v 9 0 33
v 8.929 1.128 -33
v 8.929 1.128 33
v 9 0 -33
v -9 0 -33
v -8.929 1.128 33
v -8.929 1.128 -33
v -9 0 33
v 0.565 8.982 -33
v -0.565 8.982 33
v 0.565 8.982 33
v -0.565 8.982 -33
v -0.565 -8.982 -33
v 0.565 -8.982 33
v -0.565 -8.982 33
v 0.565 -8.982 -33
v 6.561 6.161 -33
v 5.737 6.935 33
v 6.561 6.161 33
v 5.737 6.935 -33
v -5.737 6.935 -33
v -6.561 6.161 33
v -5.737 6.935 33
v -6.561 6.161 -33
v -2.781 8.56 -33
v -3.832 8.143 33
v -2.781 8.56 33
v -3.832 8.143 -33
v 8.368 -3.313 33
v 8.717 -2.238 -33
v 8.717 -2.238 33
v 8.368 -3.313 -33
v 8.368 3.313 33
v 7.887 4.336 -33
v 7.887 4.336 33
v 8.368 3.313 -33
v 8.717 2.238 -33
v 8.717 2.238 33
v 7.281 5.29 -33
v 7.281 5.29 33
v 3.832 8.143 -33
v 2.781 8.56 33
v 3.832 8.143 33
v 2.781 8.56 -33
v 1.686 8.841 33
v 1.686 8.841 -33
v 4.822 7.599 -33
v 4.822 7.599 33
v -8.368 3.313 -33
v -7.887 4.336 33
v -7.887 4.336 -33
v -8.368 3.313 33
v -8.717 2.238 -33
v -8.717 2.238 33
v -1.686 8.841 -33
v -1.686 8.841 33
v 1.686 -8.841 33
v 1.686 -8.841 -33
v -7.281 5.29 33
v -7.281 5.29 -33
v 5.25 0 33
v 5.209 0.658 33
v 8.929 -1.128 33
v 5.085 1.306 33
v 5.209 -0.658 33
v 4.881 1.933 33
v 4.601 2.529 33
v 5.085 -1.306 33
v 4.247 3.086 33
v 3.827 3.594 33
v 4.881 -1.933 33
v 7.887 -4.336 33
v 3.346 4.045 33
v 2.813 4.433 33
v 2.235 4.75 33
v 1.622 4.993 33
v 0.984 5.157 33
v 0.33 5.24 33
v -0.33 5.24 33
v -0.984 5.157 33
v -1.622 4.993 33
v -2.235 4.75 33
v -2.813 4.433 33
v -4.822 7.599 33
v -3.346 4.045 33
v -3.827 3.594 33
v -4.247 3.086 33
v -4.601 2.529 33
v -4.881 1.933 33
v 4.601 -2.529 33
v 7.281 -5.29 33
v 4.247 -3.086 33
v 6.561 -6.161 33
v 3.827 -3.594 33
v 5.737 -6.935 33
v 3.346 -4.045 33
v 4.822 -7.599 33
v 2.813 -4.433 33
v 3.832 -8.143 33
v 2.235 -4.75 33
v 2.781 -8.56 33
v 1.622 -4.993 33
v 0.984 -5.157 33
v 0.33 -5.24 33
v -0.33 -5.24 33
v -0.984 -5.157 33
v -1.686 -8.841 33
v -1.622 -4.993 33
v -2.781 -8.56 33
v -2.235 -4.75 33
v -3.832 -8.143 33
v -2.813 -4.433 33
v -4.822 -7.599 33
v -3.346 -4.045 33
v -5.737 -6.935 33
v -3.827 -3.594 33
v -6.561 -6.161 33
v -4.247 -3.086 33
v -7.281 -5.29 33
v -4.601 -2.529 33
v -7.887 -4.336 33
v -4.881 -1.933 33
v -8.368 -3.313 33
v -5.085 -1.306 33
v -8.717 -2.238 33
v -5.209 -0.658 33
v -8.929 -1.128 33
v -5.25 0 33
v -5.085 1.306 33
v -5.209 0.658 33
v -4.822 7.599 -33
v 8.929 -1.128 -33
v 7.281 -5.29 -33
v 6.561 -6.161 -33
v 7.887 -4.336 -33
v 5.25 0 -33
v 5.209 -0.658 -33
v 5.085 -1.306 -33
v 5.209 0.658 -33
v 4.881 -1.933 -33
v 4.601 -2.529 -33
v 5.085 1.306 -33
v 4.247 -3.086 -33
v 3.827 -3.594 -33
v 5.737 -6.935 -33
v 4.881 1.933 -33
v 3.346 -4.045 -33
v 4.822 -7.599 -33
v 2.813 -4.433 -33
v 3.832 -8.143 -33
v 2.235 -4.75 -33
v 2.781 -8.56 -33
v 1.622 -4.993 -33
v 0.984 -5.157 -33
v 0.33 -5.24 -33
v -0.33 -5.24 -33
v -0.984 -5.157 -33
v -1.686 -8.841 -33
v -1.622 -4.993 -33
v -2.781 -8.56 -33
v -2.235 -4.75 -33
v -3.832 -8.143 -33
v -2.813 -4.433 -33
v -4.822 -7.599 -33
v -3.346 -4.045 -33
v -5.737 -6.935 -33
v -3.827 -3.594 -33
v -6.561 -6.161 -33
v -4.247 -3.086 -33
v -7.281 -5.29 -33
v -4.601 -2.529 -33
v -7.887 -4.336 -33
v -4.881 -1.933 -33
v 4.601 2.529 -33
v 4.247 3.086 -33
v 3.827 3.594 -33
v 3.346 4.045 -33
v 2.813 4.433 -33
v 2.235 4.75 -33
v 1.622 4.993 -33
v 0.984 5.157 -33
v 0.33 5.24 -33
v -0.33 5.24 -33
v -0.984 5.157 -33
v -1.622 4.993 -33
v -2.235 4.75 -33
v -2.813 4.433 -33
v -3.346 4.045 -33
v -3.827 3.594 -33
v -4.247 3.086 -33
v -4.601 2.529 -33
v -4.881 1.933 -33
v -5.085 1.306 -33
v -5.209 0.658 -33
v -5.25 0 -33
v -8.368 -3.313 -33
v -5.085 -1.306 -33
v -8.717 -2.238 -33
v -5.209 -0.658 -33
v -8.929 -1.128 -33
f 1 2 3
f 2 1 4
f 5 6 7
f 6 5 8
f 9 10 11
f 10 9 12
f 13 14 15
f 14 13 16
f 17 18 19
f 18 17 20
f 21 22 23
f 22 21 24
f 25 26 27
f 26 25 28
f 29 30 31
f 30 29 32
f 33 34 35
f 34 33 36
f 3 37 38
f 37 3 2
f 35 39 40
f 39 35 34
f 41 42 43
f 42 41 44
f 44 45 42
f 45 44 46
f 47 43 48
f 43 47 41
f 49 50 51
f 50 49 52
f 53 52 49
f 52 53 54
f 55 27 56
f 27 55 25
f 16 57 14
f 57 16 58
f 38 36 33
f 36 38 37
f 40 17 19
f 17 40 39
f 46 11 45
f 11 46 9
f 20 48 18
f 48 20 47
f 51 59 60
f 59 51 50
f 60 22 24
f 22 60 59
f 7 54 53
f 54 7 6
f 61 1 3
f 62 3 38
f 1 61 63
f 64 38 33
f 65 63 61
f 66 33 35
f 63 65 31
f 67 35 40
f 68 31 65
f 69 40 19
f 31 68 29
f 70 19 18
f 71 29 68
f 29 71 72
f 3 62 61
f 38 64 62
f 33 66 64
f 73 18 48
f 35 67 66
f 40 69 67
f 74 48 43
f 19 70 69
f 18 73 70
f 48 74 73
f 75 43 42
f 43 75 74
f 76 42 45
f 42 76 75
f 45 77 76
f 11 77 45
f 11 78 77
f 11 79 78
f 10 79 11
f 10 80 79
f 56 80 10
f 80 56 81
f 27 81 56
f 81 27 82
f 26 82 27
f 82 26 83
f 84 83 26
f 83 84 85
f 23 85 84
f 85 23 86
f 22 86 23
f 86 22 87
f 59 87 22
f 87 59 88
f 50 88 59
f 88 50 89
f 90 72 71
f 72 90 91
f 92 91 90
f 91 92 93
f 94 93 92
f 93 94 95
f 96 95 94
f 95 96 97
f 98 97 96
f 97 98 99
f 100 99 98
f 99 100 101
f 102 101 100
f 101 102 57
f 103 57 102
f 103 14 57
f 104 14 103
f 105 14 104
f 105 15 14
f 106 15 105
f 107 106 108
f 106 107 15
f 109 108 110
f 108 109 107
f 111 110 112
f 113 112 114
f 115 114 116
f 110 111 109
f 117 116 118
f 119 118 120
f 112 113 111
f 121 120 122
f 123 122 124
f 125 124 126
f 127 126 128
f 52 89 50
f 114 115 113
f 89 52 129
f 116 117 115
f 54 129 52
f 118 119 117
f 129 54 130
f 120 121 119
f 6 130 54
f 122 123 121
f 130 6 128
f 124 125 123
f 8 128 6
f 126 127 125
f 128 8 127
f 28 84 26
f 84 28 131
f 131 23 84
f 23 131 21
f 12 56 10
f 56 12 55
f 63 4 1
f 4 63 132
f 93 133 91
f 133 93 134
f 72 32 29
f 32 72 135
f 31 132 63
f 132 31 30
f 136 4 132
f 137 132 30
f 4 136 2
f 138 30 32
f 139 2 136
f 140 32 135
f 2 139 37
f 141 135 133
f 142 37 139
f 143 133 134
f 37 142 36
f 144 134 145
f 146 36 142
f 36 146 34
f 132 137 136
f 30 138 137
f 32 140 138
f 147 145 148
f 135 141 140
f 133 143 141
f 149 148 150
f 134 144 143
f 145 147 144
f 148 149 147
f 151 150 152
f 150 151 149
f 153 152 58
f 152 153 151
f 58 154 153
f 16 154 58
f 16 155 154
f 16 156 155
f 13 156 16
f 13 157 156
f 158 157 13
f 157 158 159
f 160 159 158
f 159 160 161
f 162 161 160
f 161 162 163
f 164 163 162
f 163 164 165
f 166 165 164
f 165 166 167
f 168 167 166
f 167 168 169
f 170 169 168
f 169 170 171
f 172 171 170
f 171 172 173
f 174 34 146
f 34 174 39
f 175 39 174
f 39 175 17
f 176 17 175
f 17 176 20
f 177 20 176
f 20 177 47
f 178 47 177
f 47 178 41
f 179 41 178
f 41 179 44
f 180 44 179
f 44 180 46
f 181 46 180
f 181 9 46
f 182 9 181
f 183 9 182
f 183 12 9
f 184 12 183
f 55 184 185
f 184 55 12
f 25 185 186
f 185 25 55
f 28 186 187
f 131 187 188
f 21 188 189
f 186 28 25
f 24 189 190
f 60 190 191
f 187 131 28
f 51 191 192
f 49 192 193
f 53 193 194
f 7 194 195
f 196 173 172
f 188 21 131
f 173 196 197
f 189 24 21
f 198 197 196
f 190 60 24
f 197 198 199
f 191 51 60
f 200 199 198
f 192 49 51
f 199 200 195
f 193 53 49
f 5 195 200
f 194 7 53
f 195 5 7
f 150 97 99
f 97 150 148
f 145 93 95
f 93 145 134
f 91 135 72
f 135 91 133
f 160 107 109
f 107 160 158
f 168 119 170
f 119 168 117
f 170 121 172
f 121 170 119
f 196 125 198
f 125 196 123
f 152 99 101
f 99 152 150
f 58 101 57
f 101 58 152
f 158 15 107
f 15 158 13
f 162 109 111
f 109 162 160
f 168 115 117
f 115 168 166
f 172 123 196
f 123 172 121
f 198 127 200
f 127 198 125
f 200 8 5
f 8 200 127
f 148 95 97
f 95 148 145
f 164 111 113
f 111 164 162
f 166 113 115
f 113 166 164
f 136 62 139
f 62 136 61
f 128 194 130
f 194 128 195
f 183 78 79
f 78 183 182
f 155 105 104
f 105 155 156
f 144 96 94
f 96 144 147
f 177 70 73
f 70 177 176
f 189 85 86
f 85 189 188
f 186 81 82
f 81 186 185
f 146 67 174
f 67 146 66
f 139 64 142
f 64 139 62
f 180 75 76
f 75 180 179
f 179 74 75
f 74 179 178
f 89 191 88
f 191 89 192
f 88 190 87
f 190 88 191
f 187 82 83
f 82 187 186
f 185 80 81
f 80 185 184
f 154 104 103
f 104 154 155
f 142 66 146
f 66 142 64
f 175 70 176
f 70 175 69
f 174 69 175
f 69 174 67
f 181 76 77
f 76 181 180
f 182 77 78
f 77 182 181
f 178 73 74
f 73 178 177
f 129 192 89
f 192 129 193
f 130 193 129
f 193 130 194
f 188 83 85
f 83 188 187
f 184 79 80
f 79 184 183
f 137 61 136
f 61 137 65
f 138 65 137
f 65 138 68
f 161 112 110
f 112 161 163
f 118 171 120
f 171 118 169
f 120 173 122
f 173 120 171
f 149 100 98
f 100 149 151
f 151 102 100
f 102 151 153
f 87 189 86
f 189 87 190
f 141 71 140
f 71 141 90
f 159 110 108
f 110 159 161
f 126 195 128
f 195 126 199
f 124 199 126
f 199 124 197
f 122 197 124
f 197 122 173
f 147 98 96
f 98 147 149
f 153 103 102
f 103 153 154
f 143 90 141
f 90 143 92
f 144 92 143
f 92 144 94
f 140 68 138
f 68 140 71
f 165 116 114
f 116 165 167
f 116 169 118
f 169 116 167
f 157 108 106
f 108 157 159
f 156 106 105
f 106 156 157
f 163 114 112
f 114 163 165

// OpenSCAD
$fn = 50;


difference() {
	union() {
		translate(v = [0, 0, -33.0000000000]) {
			cylinder(h = 66, r = 9.0000000000);
		}
	}
	union() {
		translate(v = [0, 0, -100.0000000000]) {
			cylinder(h = 200, r = 5.2500000000);
		}
	}
}
